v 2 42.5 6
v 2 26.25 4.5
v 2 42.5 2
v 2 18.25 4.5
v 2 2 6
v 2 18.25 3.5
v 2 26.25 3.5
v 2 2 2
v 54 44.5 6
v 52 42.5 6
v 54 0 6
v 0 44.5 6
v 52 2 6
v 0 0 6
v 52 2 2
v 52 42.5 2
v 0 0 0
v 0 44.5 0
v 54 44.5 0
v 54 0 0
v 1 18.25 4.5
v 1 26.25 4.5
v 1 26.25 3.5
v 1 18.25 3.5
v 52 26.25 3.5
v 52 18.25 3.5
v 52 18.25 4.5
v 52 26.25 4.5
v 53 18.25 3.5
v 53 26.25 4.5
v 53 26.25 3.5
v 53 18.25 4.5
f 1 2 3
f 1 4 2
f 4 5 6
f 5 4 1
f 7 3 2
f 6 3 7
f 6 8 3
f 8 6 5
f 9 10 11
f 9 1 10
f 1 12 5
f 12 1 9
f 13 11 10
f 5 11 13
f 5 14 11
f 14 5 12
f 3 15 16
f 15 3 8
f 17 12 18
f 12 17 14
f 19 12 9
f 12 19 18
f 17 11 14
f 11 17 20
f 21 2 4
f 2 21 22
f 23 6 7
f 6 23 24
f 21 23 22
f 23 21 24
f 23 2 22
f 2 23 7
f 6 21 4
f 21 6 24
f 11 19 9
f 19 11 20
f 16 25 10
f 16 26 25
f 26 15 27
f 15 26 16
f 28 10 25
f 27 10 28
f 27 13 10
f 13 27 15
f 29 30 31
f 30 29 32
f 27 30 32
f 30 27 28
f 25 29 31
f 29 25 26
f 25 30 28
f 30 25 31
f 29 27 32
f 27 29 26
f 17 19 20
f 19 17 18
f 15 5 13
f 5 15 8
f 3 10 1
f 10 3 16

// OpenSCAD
// file: mp3_board_box_lid_dimensions.scad
board_with_card_w = 51.25;
// board_only_w is circut board only, not including protusion of USB port and microSD slot.
board_only_w = 46;
board_l = 36.5;
board_h = 1.5;

floor_below_posts = 1;
post_area_w = 10;

wall_thickness = 2;

// Wall height starts at bottom surface of board
wall_height = 15;

wall_height_full = wall_height + floor_below_posts + wall_thickness;

front_left_wall_w = 16.25;
front_right_wall_w = 16.25;
micro_usb_opening_h = 8;

right_front_wall_w = 12;
right_back_wall_w = 13;
headphone_jack_opening_h = 7;

left_front_wall_w = 3;
left_back_wall_w = 1;
usb_opening_w = 16;
usb_opening_h = 9;
microsd_opening_w = 16;
microsd_opening_h = 6;

lid_lip_h = 4;

bump_w = 1;
bump_l = 8;
bump_h = 1;
// main file
include <mp3_board_box_lid_dimensions.scad>;

// flat top of lid
cube([board_only_w + wall_thickness * 4, board_l + wall_thickness * 4, wall_thickness]);

// left lip
color([0,1,1])
translate([0, 0, wall_thickness]) {
    difference() {
        cube([wall_thickness, board_l + wall_thickness * 4, lid_lip_h]);
        // cutout
        translate([wall_thickness - bump_w,
            (board_l + wall_thickness * 4) / 2 - bump_l / 2,
            lid_lip_h / 2 - bump_h / 2]) {
                cube([bump_w, bump_l, bump_h]);
        }    
    }
}

// right lip
translate([board_only_w + wall_thickness * 3, 0, wall_thickness]) {
    difference() {
        cube([wall_thickness, board_l + wall_thickness * 4, lid_lip_h]);
        // cutout
        translate([0,
            (board_l + wall_thickness * 4) / 2 - bump_l / 2,
            lid_lip_h / 2 - bump_h / 2]) {
                cube([bump_w, bump_l, bump_h]);
        }
    }
}

// front lip
translate([0, 0, wall_thickness]) {
    cube([board_only_w + wall_thickness * 4, wall_thickness, lid_lip_h]);
}

// back lip
translate([0, board_l + wall_thickness * 3, wall_thickness]) {
    cube([board_only_w + wall_thickness * 4, wall_thickness, lid_lip_h]);
}
